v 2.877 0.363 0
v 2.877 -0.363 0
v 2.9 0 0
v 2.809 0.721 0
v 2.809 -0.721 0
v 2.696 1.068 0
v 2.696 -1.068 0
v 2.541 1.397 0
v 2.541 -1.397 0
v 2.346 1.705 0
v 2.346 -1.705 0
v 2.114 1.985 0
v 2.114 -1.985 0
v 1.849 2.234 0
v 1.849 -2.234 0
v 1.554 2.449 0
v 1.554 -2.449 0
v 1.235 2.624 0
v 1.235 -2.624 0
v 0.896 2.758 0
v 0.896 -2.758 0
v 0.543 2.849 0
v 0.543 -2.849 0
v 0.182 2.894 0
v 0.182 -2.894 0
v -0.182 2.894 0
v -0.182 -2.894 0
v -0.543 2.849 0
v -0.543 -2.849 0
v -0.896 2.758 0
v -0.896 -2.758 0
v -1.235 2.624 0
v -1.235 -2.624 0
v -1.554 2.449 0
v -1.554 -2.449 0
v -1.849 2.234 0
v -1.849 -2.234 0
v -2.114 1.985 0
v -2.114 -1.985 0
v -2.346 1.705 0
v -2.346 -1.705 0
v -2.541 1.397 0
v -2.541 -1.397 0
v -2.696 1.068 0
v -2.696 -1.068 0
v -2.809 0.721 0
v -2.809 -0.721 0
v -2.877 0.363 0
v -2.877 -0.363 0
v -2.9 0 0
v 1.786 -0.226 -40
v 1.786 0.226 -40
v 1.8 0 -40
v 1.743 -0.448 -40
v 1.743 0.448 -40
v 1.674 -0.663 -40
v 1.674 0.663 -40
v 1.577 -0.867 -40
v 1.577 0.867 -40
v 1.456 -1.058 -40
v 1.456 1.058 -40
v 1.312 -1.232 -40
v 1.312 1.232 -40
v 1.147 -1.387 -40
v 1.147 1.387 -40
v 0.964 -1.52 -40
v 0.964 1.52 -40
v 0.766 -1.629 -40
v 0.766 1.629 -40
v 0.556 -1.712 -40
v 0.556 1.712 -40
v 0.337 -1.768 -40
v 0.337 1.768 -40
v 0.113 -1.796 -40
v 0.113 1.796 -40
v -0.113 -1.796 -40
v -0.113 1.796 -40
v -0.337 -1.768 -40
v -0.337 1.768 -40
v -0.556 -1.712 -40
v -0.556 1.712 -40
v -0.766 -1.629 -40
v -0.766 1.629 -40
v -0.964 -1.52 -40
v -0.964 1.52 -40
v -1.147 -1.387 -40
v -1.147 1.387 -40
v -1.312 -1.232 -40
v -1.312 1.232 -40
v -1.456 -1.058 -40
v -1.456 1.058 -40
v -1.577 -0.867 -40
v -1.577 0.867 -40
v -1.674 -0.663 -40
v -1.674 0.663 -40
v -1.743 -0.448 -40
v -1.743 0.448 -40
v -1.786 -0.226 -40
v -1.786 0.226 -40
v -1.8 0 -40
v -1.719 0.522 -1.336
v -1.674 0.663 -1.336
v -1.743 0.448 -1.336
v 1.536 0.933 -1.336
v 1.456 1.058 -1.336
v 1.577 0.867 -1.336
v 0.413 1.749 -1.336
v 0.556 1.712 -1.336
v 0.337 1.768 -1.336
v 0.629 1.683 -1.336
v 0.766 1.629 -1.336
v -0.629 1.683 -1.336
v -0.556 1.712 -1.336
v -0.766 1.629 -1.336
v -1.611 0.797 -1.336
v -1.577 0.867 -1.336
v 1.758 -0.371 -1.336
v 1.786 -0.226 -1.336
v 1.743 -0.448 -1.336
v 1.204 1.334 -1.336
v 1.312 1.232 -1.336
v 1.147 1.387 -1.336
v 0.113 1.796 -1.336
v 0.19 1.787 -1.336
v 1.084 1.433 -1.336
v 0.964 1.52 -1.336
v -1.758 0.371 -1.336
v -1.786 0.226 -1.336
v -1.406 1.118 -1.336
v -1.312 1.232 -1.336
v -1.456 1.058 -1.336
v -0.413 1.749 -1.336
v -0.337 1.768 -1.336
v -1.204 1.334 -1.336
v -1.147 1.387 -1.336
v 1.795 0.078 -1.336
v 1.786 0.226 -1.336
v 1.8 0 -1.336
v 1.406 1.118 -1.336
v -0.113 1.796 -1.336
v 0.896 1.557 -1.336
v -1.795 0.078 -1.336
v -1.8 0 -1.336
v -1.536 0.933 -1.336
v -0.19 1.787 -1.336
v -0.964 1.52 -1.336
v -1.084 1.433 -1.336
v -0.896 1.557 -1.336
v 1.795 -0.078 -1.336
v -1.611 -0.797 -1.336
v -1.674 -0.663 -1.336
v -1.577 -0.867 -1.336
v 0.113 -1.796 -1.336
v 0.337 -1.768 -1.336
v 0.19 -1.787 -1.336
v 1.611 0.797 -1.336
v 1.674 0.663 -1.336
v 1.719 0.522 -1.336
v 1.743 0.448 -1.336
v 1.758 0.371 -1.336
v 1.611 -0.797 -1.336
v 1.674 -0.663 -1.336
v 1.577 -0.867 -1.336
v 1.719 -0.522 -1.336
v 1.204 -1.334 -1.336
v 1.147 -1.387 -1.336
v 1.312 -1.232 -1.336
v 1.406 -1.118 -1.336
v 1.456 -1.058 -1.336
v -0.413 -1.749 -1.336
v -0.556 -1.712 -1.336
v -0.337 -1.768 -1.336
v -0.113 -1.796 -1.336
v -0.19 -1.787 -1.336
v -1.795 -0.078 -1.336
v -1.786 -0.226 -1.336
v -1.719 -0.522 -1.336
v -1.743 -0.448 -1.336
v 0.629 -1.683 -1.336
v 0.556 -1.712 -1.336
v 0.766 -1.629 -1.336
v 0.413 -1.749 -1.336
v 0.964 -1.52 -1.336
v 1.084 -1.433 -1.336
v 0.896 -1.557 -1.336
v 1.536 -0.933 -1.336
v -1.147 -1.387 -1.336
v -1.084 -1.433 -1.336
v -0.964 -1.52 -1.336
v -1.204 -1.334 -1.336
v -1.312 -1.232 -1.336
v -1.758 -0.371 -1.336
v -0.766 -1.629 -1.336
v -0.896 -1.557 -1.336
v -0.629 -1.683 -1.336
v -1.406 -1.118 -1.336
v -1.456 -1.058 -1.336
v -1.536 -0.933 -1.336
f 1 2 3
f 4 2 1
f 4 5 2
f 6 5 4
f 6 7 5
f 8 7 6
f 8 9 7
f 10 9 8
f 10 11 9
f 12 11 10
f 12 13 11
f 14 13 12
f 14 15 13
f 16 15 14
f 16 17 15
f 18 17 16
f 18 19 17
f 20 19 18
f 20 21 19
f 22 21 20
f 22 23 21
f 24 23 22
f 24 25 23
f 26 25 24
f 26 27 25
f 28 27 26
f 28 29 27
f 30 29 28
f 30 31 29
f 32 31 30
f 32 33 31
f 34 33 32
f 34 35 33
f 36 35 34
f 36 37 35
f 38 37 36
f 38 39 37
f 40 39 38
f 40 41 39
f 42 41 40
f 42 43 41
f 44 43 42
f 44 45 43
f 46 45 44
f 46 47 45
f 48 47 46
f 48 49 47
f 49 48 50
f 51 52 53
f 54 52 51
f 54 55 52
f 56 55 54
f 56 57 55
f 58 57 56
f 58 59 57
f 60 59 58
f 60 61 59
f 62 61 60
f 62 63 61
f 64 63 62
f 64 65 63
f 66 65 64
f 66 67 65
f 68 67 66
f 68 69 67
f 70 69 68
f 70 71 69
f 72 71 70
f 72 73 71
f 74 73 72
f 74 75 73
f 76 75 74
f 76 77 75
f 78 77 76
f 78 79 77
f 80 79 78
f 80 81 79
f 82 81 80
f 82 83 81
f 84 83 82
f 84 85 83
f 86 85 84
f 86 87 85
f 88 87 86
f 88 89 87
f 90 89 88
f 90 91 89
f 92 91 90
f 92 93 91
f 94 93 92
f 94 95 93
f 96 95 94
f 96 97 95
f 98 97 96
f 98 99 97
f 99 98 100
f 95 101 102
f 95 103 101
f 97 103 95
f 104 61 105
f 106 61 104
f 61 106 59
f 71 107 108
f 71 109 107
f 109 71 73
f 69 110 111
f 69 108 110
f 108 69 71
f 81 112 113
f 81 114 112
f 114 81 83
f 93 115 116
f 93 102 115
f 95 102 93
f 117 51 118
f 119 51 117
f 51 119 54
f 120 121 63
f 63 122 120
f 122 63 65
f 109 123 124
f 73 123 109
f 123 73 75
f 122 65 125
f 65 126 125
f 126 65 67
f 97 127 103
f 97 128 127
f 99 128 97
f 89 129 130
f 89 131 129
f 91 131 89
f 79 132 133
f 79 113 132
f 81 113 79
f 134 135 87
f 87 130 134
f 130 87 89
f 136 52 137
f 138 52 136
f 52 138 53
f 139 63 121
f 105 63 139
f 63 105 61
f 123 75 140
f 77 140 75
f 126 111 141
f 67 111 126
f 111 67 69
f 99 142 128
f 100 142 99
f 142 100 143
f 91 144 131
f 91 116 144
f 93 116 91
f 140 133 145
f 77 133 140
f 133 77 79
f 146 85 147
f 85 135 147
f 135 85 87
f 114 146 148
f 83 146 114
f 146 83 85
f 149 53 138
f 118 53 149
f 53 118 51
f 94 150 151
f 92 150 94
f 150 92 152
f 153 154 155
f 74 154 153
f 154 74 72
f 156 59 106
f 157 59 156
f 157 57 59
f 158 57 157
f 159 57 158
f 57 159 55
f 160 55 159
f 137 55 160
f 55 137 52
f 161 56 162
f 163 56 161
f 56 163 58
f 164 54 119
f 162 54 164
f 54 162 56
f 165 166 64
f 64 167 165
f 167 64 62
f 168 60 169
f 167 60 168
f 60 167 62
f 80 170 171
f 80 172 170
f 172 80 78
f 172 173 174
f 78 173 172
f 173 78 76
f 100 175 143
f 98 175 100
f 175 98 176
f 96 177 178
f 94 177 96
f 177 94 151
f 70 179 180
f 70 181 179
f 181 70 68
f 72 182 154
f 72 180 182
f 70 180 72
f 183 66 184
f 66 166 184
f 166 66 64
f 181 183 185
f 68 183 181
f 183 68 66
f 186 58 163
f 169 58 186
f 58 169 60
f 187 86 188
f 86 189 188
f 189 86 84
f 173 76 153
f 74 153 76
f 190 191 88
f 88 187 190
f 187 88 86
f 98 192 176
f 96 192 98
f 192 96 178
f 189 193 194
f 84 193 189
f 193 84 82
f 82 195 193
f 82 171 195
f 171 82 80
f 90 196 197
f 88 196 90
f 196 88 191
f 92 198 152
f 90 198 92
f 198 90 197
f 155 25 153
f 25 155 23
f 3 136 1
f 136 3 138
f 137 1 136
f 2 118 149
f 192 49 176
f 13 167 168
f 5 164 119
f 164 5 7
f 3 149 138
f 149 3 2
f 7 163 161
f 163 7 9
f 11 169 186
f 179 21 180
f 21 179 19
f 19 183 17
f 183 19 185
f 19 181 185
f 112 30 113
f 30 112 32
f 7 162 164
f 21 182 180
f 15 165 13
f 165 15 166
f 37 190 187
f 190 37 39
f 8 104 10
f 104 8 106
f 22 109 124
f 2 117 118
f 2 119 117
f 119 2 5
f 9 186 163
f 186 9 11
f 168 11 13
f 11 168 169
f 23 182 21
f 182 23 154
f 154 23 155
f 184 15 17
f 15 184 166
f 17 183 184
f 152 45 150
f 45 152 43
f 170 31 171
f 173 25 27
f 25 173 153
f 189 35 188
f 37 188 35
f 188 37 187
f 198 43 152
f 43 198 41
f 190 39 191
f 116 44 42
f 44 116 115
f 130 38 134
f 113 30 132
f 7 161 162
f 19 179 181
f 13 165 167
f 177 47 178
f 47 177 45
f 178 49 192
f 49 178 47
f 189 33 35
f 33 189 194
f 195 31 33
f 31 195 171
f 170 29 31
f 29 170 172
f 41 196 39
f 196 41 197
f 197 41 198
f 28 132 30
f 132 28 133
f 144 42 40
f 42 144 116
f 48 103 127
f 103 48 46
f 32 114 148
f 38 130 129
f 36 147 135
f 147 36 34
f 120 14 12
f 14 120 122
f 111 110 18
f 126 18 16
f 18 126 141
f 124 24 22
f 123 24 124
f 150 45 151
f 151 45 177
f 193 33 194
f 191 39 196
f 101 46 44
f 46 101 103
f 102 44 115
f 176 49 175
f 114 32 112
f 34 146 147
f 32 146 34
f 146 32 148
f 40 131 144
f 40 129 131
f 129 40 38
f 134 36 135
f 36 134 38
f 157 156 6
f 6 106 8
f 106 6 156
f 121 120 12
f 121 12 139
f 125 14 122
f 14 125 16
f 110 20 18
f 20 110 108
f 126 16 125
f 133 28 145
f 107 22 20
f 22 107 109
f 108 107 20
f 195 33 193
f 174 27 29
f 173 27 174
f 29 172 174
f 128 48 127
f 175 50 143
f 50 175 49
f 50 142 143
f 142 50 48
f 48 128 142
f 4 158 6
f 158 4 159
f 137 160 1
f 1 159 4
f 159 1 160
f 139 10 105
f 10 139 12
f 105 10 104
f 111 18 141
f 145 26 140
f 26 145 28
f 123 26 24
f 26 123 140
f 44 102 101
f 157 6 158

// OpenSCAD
$fn = 50;


difference() {
	union() {
		translate(v = [0, 0, 0]) {
			rotate(a = [0, 0, 0]) {
				difference() {
					union() {
						translate(v = [0, 0, -40.0000000000]) {
							cylinder(h = 40, r = 1.5000000000);
						}
						translate(v = [0, 0, -40.0000000000]) {
							cylinder(h = 40, r = 1.8000000000);
						}
						translate(v = [0, 0, -1.7000000000]) {
							cylinder(h = 1.7000000000, r1 = 1.5000000000, r2 = 2.9000000000);
						}
						translate(v = [0, 0, -40.0000000000]) {
							cylinder(h = 40, r = 1.5000000000);
						}
					}
					union();
				}
			}
		}
	}
	union();
}
